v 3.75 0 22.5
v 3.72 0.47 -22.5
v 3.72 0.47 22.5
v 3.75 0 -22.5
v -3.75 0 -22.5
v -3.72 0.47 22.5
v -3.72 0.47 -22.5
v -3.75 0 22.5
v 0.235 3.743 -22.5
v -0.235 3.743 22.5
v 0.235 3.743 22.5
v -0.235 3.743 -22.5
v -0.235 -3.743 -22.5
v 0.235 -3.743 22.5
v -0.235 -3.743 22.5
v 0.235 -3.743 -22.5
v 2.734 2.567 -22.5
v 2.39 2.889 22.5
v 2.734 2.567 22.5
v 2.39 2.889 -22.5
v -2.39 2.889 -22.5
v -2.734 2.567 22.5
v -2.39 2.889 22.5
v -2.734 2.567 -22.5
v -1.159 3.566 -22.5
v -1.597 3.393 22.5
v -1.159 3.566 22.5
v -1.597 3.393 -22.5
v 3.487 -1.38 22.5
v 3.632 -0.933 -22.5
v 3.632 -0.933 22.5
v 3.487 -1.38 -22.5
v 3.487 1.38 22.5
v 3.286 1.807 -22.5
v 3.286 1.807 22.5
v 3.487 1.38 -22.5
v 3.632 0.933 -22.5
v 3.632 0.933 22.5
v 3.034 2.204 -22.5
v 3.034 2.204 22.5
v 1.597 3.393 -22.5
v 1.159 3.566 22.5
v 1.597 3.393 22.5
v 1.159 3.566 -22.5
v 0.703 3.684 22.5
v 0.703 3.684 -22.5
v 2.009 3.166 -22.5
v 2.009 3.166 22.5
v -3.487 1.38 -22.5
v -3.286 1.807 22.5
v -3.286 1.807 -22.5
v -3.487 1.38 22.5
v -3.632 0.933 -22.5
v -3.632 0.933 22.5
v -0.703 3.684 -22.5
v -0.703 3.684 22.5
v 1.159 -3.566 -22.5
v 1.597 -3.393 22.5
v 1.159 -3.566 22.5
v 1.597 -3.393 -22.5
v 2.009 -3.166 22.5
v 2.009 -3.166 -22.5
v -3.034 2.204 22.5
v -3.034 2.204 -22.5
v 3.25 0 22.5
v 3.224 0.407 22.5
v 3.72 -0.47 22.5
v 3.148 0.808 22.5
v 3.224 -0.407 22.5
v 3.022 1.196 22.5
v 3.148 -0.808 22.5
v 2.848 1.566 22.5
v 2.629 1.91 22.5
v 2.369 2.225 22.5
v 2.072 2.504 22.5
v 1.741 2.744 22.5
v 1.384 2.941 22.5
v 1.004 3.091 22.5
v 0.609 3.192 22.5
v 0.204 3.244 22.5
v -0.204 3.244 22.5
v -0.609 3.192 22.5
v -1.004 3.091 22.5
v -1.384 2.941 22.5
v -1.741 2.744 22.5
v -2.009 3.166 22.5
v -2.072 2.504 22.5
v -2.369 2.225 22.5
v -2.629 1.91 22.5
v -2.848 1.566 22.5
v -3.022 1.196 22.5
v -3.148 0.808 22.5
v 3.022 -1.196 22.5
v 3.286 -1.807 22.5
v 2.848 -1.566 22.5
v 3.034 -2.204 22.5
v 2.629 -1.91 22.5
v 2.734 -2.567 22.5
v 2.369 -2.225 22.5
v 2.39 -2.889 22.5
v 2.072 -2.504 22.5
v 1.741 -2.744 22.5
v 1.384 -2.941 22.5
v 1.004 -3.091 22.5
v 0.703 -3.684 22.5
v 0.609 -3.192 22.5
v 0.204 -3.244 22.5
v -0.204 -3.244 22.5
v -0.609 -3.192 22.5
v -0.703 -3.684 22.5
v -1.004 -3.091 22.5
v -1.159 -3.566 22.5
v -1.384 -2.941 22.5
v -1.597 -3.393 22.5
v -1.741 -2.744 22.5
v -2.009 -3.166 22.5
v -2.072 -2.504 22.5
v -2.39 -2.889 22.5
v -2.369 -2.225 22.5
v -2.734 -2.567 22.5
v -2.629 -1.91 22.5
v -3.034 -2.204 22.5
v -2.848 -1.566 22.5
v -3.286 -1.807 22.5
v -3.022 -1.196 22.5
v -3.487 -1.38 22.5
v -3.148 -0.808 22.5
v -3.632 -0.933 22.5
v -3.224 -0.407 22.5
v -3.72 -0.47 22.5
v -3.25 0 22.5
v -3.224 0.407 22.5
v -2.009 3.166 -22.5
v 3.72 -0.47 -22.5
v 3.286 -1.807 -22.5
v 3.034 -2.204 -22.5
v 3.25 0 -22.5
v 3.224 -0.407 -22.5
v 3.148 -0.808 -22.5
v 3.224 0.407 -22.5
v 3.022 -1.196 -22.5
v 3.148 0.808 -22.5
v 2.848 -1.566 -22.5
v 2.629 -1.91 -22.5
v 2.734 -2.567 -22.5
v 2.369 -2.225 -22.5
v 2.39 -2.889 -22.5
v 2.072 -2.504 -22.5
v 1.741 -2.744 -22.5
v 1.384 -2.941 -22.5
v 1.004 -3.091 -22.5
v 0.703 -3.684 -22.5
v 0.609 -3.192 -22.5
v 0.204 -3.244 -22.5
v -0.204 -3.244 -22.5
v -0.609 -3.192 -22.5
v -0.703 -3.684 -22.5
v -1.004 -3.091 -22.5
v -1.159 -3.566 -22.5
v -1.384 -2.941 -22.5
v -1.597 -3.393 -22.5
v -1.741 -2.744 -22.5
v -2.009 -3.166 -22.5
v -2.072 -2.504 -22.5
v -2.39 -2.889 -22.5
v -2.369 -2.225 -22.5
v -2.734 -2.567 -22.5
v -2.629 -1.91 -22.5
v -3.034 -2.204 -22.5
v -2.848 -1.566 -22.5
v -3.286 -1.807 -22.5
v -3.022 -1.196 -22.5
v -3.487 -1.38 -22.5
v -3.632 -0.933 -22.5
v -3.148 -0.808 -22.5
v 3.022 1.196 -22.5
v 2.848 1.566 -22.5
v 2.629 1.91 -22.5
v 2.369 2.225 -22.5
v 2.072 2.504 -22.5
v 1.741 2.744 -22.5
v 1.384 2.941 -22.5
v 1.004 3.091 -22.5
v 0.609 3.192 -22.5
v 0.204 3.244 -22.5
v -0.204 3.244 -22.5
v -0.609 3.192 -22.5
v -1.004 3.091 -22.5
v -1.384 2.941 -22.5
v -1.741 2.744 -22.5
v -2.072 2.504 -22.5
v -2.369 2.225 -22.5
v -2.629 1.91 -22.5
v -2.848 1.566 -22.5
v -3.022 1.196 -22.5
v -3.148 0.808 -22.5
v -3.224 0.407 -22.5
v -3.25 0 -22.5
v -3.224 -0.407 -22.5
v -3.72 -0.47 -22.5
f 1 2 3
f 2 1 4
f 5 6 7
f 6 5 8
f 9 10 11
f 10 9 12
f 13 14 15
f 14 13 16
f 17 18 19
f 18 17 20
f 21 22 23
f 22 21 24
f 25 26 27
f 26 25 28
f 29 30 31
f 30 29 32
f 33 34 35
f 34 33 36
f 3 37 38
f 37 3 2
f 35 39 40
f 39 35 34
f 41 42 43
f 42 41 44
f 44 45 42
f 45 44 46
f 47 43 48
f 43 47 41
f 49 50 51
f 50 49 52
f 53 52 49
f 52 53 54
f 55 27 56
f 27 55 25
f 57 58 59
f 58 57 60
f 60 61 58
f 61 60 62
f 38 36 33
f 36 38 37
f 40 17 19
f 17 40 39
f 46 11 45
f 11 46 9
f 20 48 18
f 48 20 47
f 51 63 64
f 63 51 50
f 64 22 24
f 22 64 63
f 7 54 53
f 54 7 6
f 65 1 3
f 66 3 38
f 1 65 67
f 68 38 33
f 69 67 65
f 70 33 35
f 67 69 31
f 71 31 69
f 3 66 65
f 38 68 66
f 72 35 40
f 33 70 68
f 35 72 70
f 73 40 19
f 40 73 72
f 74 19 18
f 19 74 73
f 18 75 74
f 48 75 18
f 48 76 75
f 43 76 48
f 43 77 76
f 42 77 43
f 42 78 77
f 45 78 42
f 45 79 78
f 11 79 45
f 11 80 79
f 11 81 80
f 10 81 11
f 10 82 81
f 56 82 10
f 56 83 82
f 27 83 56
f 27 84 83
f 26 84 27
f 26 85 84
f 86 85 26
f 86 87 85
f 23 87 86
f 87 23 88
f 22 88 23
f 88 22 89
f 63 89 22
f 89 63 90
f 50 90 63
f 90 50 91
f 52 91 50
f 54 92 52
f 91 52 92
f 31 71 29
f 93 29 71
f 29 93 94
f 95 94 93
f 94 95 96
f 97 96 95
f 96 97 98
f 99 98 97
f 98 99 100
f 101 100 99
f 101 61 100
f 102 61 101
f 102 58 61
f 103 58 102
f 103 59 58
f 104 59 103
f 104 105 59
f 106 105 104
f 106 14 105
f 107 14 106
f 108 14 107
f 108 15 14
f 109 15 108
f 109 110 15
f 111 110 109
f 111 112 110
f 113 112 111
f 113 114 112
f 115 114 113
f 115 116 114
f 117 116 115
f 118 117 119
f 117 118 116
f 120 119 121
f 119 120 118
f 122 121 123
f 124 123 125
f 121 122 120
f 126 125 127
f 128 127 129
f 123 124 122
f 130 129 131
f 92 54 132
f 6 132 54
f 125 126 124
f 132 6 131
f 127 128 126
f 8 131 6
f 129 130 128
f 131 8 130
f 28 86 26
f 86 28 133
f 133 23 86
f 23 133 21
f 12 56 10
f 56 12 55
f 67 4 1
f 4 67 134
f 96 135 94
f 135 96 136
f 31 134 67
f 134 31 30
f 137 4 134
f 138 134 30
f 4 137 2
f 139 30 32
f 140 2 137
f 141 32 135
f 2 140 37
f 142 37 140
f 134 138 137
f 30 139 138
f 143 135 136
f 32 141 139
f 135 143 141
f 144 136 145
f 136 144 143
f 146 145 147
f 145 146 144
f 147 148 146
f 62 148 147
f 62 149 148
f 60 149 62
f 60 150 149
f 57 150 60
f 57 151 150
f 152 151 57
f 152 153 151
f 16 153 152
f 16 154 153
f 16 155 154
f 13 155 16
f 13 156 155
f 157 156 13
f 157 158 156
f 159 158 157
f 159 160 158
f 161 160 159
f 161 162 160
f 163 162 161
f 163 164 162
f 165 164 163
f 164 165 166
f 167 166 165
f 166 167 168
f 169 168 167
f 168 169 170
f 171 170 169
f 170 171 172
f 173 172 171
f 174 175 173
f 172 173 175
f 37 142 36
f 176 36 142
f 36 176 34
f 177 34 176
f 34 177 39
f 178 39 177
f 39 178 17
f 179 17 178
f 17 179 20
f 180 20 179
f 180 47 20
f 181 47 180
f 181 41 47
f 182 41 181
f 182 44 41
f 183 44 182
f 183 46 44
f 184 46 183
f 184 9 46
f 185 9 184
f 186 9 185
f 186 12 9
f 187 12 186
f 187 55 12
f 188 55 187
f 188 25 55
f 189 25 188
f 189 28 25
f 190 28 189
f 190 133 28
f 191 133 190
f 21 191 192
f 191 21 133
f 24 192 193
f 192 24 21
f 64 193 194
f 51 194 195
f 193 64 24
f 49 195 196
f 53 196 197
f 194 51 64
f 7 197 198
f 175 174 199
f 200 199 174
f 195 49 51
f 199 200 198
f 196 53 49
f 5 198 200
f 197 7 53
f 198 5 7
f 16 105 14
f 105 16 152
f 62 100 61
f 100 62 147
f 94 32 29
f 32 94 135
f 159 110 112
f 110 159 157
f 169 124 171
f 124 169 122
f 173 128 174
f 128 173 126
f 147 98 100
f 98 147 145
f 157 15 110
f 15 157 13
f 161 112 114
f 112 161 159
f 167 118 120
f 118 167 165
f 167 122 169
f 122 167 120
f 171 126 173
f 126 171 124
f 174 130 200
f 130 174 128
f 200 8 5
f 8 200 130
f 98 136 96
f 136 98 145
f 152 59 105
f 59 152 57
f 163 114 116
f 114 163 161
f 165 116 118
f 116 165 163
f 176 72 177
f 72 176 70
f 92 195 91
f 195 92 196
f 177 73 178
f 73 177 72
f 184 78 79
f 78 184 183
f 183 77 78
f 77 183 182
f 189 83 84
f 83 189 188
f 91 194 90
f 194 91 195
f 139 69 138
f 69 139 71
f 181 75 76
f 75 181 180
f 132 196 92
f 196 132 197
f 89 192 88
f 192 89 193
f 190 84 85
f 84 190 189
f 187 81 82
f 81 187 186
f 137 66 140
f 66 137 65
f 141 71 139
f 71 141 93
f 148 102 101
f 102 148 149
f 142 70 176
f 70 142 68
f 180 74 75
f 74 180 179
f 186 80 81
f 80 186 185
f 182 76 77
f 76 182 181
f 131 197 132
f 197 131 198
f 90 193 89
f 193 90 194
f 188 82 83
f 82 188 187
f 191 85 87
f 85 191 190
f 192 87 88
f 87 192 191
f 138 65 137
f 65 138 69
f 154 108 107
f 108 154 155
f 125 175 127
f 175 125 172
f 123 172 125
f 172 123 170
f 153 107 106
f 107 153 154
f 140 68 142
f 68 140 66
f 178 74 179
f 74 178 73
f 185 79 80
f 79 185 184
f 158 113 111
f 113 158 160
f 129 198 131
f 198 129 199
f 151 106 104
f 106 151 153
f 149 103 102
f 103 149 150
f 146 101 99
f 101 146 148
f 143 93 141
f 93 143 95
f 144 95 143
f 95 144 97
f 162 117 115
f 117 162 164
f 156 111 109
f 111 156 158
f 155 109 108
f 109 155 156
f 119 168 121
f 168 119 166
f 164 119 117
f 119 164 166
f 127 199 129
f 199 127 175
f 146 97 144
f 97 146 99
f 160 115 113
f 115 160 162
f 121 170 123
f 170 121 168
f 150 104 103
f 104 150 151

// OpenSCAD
$fn = 50;


difference() {
	union() {
		translate(v = [0, 0, -22.5000000000]) {
			cylinder(h = 45, r = 3.7500000000);
		}
	}
	union() {
		translate(v = [0, 0, -100.0000000000]) {
			cylinder(h = 200, r = 3.2500000000);
		}
	}
}
